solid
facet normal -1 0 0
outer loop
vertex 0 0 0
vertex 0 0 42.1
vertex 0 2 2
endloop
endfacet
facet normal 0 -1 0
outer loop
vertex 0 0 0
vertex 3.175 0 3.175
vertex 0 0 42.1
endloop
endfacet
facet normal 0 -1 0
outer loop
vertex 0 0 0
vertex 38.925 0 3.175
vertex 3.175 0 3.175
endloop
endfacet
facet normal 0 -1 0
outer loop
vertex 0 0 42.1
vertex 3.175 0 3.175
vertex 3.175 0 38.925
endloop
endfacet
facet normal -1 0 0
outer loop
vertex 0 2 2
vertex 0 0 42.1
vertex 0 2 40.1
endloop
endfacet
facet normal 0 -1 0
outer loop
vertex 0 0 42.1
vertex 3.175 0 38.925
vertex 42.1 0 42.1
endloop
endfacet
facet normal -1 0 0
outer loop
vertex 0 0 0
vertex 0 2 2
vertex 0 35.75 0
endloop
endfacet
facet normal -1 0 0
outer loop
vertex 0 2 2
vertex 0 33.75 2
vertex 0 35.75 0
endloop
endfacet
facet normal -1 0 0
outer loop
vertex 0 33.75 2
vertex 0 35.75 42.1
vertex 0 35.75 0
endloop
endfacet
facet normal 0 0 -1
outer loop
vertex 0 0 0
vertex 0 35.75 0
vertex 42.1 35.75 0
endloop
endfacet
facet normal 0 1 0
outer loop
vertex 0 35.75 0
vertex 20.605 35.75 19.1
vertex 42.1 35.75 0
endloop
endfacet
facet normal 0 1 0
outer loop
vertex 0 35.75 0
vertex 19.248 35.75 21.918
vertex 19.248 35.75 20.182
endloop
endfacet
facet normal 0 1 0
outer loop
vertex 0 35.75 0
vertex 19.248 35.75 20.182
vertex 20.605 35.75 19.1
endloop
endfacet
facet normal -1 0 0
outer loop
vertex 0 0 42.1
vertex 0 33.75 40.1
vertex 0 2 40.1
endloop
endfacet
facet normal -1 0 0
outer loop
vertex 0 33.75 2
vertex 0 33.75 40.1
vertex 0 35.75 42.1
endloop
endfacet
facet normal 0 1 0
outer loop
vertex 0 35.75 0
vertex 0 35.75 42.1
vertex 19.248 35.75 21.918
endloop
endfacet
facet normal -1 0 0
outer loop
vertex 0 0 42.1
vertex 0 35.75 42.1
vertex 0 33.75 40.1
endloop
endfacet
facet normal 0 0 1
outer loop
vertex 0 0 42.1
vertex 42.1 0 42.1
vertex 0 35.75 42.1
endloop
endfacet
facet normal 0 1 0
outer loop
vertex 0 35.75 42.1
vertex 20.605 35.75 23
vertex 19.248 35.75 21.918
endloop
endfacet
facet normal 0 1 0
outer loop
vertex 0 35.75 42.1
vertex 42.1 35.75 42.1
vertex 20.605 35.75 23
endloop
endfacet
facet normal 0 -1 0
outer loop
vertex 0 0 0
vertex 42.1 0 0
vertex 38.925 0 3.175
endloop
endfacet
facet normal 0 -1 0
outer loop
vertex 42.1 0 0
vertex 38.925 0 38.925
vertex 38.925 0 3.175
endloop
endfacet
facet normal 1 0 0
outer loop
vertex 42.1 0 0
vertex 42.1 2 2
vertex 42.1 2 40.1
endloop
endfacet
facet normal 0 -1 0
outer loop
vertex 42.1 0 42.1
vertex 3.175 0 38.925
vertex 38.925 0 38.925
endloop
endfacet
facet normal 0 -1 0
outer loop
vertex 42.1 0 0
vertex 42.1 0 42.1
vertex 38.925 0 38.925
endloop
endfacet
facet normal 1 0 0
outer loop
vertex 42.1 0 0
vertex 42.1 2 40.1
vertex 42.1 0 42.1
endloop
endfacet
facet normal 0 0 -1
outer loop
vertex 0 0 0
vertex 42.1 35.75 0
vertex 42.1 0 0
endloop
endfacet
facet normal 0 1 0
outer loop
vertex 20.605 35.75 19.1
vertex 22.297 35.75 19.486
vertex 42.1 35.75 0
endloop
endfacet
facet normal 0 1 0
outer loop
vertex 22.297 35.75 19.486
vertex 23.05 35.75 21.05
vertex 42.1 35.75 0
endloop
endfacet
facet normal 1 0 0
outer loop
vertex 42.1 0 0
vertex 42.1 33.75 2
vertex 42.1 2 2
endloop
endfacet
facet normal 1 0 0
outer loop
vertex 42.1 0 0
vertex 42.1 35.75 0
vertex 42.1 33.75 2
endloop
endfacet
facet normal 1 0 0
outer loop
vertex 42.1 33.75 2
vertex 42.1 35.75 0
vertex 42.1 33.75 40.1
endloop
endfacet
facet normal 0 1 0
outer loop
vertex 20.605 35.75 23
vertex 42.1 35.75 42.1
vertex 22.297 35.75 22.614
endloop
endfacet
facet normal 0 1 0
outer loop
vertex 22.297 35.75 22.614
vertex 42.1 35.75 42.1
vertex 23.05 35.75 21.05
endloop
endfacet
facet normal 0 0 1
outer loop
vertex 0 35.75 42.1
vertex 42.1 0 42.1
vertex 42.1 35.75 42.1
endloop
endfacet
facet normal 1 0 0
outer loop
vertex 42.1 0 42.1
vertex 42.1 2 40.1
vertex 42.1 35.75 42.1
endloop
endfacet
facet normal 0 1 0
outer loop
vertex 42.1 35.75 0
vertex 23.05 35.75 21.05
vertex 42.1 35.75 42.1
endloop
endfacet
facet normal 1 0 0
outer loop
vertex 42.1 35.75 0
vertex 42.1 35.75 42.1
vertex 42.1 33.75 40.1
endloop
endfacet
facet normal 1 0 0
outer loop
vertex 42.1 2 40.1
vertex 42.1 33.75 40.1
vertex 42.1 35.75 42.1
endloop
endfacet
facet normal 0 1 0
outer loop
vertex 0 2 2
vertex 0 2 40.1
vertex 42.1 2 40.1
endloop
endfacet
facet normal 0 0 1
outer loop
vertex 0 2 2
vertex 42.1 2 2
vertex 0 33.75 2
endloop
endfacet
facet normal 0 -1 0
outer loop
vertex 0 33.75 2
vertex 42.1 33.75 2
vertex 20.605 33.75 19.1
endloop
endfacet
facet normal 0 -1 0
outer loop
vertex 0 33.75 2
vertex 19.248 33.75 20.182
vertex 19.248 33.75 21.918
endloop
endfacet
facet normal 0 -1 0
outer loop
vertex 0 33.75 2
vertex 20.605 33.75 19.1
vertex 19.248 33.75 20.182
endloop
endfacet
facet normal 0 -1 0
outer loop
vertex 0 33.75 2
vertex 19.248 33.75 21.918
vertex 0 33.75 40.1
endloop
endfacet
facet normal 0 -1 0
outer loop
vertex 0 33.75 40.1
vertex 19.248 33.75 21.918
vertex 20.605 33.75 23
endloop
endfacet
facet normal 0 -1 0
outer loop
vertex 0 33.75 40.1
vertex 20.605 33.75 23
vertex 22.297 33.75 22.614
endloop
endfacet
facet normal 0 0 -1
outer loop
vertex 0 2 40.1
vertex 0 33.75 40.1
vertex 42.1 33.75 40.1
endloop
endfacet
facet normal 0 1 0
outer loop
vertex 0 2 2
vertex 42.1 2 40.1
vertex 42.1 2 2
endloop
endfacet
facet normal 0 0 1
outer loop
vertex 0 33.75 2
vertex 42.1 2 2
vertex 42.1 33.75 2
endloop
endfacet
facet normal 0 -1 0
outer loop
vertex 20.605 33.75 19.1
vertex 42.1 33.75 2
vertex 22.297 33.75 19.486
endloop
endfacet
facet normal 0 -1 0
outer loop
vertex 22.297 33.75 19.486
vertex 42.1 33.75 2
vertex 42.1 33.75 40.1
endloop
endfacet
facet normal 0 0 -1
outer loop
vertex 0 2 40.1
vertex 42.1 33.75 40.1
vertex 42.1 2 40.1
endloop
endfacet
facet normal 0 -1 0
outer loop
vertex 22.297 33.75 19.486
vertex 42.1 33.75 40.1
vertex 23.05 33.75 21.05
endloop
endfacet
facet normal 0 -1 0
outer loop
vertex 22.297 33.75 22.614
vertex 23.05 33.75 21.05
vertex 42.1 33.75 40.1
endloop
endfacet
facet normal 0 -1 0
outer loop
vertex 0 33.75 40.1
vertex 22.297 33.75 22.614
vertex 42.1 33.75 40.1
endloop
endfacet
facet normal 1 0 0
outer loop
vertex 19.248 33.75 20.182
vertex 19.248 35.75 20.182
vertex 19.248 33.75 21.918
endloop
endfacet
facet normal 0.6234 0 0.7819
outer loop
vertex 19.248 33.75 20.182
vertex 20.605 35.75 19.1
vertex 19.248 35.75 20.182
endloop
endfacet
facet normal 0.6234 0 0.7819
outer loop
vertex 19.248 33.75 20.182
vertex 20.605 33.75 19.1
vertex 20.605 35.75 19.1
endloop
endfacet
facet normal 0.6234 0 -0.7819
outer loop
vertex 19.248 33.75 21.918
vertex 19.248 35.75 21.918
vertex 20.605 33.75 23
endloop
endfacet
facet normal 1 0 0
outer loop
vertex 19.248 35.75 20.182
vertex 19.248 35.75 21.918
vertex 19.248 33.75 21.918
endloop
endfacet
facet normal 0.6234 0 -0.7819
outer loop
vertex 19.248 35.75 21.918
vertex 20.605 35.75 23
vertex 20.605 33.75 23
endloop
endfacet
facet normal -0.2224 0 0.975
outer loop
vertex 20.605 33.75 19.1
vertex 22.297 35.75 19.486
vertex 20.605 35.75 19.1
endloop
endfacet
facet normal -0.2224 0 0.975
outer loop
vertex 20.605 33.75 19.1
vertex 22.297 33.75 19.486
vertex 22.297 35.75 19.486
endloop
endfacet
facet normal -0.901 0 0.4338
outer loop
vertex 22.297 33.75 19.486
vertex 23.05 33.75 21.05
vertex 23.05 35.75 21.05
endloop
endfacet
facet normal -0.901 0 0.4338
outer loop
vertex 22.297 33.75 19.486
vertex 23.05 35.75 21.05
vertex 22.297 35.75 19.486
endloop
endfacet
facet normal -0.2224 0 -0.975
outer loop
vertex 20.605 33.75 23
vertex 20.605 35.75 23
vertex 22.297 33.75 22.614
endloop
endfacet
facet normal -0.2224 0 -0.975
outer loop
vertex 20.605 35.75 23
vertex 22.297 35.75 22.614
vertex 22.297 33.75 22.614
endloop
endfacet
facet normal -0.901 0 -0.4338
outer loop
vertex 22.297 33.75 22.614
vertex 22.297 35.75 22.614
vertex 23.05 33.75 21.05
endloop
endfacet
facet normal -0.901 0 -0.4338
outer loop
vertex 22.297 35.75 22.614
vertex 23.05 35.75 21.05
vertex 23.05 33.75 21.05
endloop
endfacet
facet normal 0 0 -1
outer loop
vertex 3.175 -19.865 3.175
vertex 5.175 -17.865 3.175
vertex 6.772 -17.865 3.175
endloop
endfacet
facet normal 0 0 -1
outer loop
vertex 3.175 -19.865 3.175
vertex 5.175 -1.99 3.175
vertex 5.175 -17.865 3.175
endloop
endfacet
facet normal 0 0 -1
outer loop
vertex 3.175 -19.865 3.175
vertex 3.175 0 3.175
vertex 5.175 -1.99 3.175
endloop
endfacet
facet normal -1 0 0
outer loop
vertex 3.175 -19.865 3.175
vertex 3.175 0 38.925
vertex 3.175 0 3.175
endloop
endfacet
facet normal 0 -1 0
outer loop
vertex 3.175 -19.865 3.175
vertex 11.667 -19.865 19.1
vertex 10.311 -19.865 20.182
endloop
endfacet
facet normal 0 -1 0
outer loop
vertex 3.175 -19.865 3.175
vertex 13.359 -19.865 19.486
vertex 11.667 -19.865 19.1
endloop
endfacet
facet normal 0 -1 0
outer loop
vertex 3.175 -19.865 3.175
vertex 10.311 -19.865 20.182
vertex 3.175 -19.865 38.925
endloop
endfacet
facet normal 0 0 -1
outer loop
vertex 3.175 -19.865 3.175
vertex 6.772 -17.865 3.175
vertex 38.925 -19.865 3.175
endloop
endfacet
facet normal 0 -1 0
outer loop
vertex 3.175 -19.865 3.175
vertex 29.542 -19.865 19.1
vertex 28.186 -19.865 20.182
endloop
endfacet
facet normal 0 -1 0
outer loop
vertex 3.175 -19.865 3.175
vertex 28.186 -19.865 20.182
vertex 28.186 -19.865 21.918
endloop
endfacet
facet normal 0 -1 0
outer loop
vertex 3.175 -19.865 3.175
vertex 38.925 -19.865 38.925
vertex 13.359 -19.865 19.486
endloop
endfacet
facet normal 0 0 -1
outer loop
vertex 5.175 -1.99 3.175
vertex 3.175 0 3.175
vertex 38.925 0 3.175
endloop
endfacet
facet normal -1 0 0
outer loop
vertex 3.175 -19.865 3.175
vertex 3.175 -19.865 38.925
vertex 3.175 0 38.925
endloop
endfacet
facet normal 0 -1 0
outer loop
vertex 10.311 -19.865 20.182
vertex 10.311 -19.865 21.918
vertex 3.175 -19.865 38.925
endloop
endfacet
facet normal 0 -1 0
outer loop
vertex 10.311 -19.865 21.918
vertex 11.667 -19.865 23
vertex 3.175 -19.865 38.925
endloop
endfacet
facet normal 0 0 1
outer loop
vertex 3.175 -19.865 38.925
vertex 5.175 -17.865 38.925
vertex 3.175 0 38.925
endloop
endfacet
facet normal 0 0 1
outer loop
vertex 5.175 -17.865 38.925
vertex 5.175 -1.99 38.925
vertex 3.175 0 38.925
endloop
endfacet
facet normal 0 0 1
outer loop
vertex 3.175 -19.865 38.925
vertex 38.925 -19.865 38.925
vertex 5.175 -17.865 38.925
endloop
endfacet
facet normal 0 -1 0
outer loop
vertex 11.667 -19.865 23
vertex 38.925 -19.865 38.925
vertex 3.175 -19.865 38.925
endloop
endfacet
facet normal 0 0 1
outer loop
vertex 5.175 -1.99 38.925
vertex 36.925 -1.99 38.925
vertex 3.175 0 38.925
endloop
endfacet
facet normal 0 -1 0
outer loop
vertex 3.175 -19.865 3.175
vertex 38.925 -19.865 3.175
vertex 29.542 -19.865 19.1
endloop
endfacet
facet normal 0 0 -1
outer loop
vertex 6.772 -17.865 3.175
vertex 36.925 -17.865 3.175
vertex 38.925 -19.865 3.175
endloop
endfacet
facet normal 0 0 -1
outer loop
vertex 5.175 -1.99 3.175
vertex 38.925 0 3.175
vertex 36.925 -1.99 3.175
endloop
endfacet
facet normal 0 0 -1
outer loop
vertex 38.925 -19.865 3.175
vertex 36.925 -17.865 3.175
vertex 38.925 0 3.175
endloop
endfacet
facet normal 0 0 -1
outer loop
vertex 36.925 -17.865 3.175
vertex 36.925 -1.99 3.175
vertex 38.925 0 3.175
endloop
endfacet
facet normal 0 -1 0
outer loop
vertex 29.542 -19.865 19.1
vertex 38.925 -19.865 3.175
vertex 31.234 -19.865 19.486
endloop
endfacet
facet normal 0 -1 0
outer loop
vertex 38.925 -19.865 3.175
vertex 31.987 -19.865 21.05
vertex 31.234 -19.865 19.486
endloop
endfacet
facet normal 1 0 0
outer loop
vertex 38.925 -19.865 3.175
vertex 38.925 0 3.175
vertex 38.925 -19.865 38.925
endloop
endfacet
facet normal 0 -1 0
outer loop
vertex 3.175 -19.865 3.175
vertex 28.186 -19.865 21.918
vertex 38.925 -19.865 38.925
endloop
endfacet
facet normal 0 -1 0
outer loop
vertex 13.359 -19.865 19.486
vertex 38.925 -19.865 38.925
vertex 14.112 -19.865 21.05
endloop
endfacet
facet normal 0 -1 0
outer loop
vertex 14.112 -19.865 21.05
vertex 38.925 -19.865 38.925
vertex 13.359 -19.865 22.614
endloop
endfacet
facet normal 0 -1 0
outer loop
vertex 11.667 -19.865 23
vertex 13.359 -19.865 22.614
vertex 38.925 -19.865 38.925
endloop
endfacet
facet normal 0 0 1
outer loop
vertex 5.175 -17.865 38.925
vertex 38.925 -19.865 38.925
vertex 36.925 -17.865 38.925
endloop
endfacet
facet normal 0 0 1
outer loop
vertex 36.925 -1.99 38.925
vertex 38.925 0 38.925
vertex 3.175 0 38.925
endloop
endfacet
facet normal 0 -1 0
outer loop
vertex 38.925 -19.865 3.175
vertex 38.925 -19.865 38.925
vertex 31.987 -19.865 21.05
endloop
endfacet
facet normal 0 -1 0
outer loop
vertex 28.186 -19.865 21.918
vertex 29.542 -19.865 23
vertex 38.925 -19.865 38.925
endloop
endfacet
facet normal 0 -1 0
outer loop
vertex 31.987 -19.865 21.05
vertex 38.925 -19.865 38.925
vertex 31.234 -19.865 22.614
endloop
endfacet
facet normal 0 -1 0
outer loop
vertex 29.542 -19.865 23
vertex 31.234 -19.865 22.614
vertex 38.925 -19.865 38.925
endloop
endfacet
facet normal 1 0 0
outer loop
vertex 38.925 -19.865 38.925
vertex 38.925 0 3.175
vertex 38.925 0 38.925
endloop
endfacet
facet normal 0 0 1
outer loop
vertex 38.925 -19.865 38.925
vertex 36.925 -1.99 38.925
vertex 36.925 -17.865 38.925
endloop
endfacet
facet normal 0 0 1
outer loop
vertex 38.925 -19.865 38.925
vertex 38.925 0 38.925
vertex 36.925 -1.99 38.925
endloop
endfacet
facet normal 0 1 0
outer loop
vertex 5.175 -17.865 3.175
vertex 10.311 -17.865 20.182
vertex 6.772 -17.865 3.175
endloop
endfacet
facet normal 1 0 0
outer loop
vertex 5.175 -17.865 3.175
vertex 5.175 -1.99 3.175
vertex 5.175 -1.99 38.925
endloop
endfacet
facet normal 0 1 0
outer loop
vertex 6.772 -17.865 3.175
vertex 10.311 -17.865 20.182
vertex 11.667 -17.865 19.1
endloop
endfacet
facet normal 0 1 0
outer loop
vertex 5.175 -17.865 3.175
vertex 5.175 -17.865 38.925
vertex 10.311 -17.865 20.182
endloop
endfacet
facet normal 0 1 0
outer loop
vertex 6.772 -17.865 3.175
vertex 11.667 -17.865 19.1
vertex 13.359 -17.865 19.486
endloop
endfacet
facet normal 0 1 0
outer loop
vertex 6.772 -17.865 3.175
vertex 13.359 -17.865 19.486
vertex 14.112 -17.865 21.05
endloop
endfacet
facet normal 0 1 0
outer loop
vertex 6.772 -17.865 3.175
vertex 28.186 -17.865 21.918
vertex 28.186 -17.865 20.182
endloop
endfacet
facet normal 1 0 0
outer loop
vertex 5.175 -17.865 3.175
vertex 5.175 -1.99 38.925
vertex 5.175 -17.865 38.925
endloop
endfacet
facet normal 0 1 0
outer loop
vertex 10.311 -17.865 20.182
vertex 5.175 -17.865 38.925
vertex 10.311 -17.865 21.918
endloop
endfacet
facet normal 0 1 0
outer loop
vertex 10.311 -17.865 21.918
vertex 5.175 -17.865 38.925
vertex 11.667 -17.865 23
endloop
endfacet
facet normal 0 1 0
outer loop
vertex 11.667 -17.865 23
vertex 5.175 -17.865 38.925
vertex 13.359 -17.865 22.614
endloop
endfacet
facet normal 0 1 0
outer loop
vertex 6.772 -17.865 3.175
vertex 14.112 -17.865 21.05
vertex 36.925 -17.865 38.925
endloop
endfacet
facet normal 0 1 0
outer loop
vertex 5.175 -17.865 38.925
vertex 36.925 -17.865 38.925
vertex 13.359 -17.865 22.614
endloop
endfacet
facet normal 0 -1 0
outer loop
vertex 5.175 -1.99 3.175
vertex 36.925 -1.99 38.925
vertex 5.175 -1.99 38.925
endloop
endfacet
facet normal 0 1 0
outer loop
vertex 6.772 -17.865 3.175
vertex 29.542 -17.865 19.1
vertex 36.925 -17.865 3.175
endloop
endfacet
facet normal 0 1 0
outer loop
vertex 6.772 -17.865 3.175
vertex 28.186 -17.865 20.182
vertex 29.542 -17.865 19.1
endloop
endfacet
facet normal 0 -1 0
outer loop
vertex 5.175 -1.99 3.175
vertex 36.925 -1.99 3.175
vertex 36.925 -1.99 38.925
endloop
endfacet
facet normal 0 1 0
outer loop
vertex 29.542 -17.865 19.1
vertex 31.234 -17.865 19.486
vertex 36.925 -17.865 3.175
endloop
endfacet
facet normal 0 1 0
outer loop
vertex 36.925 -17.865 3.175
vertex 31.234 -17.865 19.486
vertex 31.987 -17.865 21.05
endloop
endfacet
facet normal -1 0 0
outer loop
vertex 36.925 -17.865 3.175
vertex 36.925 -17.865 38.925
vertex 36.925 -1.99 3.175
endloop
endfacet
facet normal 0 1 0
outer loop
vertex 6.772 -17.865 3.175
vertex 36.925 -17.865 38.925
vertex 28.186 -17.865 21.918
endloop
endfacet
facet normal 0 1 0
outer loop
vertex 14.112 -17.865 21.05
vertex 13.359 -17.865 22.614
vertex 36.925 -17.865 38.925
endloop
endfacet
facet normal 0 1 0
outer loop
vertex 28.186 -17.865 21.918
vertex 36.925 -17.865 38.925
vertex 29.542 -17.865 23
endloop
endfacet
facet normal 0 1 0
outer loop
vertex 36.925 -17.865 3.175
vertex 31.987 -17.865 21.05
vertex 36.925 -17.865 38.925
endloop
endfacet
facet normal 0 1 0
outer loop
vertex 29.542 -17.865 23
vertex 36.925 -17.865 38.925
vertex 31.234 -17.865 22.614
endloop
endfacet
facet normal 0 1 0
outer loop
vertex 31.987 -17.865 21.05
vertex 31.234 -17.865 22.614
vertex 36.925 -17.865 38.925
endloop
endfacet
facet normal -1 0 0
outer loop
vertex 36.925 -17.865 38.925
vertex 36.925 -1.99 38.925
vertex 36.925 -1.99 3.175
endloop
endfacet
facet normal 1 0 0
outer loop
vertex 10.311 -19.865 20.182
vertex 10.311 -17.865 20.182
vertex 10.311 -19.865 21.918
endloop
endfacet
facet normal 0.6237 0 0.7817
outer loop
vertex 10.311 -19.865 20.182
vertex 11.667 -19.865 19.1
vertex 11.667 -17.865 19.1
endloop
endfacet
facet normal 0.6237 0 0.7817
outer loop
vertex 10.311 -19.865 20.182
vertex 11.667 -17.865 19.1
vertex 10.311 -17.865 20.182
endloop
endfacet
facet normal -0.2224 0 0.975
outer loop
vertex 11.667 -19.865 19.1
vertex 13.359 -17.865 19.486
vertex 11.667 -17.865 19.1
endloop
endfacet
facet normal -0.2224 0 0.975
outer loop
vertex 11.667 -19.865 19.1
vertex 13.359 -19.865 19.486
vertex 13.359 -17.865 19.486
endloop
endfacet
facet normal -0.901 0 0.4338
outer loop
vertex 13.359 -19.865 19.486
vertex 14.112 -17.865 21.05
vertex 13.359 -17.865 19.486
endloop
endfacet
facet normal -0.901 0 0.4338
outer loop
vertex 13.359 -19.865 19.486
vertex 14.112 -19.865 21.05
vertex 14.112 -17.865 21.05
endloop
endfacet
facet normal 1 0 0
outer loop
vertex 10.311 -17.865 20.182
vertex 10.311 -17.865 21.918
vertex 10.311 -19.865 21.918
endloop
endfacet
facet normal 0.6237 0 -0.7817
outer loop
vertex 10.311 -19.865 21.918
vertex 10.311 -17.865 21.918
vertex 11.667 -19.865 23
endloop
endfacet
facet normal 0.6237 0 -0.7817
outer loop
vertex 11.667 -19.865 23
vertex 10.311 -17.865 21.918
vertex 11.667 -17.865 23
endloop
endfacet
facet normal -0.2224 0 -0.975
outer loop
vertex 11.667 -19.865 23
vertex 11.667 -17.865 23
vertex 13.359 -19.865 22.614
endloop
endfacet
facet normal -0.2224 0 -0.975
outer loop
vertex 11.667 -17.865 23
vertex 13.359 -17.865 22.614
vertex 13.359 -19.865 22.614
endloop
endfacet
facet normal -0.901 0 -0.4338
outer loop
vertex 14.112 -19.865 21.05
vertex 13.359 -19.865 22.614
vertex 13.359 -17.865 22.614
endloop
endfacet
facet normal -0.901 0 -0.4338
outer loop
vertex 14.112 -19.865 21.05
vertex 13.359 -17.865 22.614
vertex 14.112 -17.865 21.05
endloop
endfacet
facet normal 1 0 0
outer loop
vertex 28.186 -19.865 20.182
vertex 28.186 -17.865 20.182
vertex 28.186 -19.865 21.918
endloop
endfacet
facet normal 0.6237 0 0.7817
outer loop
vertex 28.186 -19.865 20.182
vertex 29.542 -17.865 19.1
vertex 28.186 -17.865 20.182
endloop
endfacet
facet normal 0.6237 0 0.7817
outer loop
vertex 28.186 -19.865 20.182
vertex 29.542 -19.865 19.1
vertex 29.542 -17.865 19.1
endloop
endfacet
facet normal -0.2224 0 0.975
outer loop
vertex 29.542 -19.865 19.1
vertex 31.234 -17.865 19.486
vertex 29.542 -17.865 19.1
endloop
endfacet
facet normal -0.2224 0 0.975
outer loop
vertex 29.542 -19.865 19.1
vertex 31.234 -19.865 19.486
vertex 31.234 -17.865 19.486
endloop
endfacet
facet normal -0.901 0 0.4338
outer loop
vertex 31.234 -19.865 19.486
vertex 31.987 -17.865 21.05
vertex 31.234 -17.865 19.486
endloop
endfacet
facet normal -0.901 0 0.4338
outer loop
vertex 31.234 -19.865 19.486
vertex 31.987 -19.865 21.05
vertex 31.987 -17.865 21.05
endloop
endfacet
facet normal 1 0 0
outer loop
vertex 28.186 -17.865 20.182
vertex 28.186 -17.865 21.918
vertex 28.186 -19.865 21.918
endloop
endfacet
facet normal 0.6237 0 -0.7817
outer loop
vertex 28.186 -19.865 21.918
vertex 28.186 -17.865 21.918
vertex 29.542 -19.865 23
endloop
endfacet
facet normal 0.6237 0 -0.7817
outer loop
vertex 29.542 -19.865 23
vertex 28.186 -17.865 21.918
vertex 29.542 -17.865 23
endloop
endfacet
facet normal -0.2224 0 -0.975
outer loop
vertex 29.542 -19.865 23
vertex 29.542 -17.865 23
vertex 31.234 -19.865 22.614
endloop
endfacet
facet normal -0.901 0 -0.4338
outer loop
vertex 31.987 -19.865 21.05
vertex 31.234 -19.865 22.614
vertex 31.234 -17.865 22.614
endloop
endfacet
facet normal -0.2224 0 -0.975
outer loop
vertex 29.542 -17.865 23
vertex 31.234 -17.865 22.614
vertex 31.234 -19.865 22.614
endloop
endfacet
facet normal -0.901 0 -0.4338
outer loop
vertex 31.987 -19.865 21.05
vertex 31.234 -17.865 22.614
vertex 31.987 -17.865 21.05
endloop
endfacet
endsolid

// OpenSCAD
// Copyright (c) 2026 Chris Lee and contributors.
// Licensed under the MIT license. See LICENSE file in the project root for details.

// Brace for joining two wood peices to make a T-frame for mounting sonars in the garage.
include <MCAD/units.scad>

dims1 = [1.5 * inch, 1.25 * inch];
dims2 = [1.25 * inch, 5/8 * inch];

width = 2;

inner1 = [dims1[0], dims1[1], dims1[0]];
outer1 = inner1 + 2*width*[1, 1, 1];

inner2 = [dims2[0], dims2[1], dims2[0]];
outer2 = inner2 + 2*width*[1, 1, 1];

module tjoint() {
  difference() {
    cube(outer1);
    translate([-1, width, width]) {
      cube(inner1 + [2 + width * 2, 0, 0]);
    }
    translate([outer1[0]/2, outer1[1]-width-1, outer1[2]/2]) rotate([-90,0,0]) cylinder(10, 2, 2);
  }
  tx = [(outer1[0] - outer2[0])/2, -outer2[1]+epsilon, (outer1[2]-outer2[2])/2];
  translate(tx) {
    difference() {
      cube(outer2);
      translate([width, width, -1]) {
	cube(inner2 + [0, 0, 2 + 2 * width]);
      }
      translate([1*outer2[0]/4, -1, outer2[2]/2]) rotate([-90,0,0]) cylinder(10, 2, 2);
      translate([3*outer2[0]/4, -1, outer2[2]/2]) rotate([-90,0,0]) cylinder(10, 2, 2);
    }
  }
}

tjoint();
